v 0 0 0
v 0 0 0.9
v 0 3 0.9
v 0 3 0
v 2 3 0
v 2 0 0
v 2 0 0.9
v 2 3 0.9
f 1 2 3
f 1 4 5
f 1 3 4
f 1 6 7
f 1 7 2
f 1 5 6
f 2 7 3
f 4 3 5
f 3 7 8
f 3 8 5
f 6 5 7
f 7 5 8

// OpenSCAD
/* Warning, this is a very basic generator with a lot of approximation 
input data : [VDFN, Q7B, 2.x3x0.9mm, 8, , A, C04-21357A]
generated by com.zoubworld.electronics.cad.model3d.Basic
Date : Sun Feb 15 10:50:49 CET 2026
*/

//body
color("black")
translate([0,0,0])
cube([2.0,3.0,0.9], center=false);
